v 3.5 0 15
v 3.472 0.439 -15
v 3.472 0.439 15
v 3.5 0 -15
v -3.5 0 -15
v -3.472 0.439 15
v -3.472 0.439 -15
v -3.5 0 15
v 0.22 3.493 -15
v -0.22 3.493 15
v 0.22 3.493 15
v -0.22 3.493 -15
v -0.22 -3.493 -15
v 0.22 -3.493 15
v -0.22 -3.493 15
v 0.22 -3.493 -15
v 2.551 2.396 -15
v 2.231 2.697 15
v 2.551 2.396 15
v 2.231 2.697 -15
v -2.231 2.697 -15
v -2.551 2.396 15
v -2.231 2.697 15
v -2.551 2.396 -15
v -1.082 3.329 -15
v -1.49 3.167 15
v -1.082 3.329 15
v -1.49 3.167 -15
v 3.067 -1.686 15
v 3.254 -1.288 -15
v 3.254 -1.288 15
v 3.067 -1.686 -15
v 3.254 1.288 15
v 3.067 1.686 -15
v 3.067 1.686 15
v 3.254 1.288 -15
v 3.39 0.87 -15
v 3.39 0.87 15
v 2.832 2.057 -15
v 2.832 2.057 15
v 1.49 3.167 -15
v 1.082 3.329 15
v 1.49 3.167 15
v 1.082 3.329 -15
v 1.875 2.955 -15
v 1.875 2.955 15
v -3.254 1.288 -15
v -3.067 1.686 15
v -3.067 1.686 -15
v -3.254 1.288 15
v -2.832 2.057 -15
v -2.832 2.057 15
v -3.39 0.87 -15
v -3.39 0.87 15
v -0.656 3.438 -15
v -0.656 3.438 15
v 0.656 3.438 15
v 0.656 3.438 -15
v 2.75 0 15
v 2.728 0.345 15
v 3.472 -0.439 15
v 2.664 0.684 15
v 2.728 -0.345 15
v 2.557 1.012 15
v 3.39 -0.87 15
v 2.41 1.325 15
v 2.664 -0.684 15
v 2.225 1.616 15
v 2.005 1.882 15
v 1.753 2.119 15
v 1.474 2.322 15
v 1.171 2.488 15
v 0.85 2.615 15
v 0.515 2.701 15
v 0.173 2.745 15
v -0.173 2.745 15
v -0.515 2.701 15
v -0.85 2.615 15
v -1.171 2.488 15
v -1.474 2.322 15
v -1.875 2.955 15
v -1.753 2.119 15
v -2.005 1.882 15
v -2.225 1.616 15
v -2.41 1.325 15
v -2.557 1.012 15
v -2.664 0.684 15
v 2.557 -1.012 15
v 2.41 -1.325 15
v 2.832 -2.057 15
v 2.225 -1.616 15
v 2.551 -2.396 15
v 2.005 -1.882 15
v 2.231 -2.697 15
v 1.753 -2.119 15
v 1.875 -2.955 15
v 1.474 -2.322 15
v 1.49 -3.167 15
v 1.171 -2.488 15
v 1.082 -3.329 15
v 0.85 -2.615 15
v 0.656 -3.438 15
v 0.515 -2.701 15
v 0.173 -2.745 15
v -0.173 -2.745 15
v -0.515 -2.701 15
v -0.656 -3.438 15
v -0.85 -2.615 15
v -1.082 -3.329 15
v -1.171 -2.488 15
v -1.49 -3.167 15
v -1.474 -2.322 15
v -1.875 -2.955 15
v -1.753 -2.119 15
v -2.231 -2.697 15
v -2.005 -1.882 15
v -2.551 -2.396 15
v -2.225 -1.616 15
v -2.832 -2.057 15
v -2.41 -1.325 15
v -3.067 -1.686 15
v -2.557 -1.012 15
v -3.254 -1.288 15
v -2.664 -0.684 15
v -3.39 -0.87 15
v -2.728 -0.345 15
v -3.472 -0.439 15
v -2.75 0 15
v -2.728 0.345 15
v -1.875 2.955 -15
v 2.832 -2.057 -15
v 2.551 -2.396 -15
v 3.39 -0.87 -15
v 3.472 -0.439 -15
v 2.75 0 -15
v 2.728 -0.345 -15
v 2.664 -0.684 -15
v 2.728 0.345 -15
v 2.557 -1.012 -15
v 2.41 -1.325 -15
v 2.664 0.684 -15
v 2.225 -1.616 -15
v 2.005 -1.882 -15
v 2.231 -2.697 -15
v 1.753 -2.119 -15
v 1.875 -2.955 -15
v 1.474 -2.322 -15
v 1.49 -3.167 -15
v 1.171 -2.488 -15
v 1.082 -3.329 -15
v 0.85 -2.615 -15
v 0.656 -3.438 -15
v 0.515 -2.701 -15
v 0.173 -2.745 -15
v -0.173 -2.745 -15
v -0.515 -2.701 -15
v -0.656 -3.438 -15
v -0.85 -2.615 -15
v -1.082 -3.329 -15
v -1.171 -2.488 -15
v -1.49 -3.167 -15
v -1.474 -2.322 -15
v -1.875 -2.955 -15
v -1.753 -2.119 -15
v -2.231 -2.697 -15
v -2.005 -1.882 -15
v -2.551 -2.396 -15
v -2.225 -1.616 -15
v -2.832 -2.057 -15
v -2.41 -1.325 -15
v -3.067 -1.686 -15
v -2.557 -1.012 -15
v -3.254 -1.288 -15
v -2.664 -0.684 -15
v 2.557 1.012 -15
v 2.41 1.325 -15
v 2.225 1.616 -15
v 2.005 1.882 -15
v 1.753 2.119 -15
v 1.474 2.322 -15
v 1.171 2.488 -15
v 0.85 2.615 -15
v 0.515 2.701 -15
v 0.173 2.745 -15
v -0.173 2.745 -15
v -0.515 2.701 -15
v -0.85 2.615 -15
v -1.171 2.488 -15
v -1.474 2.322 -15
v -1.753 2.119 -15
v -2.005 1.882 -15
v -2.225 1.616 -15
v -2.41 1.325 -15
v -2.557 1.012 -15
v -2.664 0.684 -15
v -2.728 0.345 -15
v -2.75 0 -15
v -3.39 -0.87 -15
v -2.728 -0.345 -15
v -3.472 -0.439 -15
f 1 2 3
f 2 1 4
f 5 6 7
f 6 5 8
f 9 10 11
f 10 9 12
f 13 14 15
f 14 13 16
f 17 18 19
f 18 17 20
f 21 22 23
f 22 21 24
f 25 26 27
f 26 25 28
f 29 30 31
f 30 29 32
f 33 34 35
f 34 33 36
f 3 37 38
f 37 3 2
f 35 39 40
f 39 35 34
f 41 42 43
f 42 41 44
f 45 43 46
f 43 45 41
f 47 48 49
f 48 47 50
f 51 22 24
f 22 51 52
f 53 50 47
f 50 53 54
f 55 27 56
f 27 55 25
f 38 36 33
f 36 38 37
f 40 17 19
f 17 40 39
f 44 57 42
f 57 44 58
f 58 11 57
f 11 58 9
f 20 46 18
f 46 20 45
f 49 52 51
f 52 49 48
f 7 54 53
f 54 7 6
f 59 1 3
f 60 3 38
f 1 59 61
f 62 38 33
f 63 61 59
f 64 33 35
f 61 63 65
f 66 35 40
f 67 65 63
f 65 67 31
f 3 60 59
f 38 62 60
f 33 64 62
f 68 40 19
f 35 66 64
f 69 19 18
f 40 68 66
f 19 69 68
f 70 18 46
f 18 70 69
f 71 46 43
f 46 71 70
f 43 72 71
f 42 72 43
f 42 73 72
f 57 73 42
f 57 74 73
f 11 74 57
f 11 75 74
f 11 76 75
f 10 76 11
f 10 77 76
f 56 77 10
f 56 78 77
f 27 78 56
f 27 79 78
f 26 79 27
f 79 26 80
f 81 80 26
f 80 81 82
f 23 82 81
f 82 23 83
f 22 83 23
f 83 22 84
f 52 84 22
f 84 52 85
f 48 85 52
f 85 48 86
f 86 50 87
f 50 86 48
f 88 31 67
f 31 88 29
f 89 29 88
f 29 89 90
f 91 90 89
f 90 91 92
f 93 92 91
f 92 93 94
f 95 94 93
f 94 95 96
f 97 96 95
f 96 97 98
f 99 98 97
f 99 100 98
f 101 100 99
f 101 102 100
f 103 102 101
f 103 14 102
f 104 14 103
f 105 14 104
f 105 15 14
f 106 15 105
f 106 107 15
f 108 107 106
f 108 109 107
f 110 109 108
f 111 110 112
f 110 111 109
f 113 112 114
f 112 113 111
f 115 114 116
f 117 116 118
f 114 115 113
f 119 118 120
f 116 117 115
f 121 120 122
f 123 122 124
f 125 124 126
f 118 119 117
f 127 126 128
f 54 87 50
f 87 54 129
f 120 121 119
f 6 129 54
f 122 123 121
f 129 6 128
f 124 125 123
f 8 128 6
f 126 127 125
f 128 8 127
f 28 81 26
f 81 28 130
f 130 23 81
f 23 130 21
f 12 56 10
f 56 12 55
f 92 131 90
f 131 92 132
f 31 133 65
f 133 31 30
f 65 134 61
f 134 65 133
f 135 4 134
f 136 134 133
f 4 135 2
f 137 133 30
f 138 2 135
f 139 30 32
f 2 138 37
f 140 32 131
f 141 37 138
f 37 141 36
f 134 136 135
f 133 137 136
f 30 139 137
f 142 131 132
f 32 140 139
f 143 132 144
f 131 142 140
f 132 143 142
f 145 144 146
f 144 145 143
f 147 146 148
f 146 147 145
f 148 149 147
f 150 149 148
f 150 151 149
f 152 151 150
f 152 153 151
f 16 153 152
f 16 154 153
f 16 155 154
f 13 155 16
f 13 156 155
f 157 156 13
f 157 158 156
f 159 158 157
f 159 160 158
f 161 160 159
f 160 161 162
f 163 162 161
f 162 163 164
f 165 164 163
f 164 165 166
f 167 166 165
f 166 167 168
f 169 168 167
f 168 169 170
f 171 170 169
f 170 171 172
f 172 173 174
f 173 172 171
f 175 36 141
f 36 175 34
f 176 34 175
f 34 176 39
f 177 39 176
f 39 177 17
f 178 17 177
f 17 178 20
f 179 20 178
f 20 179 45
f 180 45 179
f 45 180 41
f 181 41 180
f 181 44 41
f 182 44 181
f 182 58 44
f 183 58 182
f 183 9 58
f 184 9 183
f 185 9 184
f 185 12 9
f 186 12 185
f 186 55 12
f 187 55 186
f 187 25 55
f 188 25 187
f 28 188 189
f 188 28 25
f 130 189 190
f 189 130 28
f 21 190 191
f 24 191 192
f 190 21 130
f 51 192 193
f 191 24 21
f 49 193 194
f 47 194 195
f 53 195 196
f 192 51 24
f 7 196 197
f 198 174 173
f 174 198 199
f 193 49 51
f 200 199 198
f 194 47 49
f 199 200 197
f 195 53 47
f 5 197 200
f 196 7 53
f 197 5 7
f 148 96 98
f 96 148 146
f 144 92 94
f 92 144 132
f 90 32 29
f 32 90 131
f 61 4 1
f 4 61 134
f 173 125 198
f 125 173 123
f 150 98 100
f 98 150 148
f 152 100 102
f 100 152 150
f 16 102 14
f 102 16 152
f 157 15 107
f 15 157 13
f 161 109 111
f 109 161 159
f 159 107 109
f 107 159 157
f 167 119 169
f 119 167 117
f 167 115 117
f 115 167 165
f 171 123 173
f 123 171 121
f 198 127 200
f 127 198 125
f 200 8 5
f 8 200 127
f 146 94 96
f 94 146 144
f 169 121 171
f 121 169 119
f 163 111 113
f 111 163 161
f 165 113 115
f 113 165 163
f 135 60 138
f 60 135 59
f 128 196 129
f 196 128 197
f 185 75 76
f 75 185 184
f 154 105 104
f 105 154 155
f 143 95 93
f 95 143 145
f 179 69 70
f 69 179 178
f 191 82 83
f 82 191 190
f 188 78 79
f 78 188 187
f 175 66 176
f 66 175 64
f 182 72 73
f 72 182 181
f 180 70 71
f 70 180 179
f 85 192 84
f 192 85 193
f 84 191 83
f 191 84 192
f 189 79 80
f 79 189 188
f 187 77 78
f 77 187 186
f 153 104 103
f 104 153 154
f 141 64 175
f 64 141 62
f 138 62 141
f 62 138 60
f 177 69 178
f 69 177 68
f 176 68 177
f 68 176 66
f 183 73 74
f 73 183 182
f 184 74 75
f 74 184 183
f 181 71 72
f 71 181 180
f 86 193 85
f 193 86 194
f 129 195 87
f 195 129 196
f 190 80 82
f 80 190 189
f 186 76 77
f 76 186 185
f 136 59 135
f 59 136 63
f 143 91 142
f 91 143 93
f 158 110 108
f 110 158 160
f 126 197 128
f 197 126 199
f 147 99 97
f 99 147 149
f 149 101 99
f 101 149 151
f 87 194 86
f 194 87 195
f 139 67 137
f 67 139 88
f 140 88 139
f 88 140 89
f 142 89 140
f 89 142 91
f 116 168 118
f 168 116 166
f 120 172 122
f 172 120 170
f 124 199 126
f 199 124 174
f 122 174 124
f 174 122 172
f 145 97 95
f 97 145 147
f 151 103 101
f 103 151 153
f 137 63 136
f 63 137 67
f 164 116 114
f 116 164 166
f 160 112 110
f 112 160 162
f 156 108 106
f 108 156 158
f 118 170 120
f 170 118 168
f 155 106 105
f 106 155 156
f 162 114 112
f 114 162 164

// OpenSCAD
$fn = 50;


difference() {
	union() {
		translate(v = [0, 0, -15.0000000000]) {
			cylinder(h = 30, r = 3.5000000000);
		}
	}
	union() {
		translate(v = [0, 0, -100.0000000000]) {
			cylinder(h = 200, r = 2.7500000000);
		}
	}
}
